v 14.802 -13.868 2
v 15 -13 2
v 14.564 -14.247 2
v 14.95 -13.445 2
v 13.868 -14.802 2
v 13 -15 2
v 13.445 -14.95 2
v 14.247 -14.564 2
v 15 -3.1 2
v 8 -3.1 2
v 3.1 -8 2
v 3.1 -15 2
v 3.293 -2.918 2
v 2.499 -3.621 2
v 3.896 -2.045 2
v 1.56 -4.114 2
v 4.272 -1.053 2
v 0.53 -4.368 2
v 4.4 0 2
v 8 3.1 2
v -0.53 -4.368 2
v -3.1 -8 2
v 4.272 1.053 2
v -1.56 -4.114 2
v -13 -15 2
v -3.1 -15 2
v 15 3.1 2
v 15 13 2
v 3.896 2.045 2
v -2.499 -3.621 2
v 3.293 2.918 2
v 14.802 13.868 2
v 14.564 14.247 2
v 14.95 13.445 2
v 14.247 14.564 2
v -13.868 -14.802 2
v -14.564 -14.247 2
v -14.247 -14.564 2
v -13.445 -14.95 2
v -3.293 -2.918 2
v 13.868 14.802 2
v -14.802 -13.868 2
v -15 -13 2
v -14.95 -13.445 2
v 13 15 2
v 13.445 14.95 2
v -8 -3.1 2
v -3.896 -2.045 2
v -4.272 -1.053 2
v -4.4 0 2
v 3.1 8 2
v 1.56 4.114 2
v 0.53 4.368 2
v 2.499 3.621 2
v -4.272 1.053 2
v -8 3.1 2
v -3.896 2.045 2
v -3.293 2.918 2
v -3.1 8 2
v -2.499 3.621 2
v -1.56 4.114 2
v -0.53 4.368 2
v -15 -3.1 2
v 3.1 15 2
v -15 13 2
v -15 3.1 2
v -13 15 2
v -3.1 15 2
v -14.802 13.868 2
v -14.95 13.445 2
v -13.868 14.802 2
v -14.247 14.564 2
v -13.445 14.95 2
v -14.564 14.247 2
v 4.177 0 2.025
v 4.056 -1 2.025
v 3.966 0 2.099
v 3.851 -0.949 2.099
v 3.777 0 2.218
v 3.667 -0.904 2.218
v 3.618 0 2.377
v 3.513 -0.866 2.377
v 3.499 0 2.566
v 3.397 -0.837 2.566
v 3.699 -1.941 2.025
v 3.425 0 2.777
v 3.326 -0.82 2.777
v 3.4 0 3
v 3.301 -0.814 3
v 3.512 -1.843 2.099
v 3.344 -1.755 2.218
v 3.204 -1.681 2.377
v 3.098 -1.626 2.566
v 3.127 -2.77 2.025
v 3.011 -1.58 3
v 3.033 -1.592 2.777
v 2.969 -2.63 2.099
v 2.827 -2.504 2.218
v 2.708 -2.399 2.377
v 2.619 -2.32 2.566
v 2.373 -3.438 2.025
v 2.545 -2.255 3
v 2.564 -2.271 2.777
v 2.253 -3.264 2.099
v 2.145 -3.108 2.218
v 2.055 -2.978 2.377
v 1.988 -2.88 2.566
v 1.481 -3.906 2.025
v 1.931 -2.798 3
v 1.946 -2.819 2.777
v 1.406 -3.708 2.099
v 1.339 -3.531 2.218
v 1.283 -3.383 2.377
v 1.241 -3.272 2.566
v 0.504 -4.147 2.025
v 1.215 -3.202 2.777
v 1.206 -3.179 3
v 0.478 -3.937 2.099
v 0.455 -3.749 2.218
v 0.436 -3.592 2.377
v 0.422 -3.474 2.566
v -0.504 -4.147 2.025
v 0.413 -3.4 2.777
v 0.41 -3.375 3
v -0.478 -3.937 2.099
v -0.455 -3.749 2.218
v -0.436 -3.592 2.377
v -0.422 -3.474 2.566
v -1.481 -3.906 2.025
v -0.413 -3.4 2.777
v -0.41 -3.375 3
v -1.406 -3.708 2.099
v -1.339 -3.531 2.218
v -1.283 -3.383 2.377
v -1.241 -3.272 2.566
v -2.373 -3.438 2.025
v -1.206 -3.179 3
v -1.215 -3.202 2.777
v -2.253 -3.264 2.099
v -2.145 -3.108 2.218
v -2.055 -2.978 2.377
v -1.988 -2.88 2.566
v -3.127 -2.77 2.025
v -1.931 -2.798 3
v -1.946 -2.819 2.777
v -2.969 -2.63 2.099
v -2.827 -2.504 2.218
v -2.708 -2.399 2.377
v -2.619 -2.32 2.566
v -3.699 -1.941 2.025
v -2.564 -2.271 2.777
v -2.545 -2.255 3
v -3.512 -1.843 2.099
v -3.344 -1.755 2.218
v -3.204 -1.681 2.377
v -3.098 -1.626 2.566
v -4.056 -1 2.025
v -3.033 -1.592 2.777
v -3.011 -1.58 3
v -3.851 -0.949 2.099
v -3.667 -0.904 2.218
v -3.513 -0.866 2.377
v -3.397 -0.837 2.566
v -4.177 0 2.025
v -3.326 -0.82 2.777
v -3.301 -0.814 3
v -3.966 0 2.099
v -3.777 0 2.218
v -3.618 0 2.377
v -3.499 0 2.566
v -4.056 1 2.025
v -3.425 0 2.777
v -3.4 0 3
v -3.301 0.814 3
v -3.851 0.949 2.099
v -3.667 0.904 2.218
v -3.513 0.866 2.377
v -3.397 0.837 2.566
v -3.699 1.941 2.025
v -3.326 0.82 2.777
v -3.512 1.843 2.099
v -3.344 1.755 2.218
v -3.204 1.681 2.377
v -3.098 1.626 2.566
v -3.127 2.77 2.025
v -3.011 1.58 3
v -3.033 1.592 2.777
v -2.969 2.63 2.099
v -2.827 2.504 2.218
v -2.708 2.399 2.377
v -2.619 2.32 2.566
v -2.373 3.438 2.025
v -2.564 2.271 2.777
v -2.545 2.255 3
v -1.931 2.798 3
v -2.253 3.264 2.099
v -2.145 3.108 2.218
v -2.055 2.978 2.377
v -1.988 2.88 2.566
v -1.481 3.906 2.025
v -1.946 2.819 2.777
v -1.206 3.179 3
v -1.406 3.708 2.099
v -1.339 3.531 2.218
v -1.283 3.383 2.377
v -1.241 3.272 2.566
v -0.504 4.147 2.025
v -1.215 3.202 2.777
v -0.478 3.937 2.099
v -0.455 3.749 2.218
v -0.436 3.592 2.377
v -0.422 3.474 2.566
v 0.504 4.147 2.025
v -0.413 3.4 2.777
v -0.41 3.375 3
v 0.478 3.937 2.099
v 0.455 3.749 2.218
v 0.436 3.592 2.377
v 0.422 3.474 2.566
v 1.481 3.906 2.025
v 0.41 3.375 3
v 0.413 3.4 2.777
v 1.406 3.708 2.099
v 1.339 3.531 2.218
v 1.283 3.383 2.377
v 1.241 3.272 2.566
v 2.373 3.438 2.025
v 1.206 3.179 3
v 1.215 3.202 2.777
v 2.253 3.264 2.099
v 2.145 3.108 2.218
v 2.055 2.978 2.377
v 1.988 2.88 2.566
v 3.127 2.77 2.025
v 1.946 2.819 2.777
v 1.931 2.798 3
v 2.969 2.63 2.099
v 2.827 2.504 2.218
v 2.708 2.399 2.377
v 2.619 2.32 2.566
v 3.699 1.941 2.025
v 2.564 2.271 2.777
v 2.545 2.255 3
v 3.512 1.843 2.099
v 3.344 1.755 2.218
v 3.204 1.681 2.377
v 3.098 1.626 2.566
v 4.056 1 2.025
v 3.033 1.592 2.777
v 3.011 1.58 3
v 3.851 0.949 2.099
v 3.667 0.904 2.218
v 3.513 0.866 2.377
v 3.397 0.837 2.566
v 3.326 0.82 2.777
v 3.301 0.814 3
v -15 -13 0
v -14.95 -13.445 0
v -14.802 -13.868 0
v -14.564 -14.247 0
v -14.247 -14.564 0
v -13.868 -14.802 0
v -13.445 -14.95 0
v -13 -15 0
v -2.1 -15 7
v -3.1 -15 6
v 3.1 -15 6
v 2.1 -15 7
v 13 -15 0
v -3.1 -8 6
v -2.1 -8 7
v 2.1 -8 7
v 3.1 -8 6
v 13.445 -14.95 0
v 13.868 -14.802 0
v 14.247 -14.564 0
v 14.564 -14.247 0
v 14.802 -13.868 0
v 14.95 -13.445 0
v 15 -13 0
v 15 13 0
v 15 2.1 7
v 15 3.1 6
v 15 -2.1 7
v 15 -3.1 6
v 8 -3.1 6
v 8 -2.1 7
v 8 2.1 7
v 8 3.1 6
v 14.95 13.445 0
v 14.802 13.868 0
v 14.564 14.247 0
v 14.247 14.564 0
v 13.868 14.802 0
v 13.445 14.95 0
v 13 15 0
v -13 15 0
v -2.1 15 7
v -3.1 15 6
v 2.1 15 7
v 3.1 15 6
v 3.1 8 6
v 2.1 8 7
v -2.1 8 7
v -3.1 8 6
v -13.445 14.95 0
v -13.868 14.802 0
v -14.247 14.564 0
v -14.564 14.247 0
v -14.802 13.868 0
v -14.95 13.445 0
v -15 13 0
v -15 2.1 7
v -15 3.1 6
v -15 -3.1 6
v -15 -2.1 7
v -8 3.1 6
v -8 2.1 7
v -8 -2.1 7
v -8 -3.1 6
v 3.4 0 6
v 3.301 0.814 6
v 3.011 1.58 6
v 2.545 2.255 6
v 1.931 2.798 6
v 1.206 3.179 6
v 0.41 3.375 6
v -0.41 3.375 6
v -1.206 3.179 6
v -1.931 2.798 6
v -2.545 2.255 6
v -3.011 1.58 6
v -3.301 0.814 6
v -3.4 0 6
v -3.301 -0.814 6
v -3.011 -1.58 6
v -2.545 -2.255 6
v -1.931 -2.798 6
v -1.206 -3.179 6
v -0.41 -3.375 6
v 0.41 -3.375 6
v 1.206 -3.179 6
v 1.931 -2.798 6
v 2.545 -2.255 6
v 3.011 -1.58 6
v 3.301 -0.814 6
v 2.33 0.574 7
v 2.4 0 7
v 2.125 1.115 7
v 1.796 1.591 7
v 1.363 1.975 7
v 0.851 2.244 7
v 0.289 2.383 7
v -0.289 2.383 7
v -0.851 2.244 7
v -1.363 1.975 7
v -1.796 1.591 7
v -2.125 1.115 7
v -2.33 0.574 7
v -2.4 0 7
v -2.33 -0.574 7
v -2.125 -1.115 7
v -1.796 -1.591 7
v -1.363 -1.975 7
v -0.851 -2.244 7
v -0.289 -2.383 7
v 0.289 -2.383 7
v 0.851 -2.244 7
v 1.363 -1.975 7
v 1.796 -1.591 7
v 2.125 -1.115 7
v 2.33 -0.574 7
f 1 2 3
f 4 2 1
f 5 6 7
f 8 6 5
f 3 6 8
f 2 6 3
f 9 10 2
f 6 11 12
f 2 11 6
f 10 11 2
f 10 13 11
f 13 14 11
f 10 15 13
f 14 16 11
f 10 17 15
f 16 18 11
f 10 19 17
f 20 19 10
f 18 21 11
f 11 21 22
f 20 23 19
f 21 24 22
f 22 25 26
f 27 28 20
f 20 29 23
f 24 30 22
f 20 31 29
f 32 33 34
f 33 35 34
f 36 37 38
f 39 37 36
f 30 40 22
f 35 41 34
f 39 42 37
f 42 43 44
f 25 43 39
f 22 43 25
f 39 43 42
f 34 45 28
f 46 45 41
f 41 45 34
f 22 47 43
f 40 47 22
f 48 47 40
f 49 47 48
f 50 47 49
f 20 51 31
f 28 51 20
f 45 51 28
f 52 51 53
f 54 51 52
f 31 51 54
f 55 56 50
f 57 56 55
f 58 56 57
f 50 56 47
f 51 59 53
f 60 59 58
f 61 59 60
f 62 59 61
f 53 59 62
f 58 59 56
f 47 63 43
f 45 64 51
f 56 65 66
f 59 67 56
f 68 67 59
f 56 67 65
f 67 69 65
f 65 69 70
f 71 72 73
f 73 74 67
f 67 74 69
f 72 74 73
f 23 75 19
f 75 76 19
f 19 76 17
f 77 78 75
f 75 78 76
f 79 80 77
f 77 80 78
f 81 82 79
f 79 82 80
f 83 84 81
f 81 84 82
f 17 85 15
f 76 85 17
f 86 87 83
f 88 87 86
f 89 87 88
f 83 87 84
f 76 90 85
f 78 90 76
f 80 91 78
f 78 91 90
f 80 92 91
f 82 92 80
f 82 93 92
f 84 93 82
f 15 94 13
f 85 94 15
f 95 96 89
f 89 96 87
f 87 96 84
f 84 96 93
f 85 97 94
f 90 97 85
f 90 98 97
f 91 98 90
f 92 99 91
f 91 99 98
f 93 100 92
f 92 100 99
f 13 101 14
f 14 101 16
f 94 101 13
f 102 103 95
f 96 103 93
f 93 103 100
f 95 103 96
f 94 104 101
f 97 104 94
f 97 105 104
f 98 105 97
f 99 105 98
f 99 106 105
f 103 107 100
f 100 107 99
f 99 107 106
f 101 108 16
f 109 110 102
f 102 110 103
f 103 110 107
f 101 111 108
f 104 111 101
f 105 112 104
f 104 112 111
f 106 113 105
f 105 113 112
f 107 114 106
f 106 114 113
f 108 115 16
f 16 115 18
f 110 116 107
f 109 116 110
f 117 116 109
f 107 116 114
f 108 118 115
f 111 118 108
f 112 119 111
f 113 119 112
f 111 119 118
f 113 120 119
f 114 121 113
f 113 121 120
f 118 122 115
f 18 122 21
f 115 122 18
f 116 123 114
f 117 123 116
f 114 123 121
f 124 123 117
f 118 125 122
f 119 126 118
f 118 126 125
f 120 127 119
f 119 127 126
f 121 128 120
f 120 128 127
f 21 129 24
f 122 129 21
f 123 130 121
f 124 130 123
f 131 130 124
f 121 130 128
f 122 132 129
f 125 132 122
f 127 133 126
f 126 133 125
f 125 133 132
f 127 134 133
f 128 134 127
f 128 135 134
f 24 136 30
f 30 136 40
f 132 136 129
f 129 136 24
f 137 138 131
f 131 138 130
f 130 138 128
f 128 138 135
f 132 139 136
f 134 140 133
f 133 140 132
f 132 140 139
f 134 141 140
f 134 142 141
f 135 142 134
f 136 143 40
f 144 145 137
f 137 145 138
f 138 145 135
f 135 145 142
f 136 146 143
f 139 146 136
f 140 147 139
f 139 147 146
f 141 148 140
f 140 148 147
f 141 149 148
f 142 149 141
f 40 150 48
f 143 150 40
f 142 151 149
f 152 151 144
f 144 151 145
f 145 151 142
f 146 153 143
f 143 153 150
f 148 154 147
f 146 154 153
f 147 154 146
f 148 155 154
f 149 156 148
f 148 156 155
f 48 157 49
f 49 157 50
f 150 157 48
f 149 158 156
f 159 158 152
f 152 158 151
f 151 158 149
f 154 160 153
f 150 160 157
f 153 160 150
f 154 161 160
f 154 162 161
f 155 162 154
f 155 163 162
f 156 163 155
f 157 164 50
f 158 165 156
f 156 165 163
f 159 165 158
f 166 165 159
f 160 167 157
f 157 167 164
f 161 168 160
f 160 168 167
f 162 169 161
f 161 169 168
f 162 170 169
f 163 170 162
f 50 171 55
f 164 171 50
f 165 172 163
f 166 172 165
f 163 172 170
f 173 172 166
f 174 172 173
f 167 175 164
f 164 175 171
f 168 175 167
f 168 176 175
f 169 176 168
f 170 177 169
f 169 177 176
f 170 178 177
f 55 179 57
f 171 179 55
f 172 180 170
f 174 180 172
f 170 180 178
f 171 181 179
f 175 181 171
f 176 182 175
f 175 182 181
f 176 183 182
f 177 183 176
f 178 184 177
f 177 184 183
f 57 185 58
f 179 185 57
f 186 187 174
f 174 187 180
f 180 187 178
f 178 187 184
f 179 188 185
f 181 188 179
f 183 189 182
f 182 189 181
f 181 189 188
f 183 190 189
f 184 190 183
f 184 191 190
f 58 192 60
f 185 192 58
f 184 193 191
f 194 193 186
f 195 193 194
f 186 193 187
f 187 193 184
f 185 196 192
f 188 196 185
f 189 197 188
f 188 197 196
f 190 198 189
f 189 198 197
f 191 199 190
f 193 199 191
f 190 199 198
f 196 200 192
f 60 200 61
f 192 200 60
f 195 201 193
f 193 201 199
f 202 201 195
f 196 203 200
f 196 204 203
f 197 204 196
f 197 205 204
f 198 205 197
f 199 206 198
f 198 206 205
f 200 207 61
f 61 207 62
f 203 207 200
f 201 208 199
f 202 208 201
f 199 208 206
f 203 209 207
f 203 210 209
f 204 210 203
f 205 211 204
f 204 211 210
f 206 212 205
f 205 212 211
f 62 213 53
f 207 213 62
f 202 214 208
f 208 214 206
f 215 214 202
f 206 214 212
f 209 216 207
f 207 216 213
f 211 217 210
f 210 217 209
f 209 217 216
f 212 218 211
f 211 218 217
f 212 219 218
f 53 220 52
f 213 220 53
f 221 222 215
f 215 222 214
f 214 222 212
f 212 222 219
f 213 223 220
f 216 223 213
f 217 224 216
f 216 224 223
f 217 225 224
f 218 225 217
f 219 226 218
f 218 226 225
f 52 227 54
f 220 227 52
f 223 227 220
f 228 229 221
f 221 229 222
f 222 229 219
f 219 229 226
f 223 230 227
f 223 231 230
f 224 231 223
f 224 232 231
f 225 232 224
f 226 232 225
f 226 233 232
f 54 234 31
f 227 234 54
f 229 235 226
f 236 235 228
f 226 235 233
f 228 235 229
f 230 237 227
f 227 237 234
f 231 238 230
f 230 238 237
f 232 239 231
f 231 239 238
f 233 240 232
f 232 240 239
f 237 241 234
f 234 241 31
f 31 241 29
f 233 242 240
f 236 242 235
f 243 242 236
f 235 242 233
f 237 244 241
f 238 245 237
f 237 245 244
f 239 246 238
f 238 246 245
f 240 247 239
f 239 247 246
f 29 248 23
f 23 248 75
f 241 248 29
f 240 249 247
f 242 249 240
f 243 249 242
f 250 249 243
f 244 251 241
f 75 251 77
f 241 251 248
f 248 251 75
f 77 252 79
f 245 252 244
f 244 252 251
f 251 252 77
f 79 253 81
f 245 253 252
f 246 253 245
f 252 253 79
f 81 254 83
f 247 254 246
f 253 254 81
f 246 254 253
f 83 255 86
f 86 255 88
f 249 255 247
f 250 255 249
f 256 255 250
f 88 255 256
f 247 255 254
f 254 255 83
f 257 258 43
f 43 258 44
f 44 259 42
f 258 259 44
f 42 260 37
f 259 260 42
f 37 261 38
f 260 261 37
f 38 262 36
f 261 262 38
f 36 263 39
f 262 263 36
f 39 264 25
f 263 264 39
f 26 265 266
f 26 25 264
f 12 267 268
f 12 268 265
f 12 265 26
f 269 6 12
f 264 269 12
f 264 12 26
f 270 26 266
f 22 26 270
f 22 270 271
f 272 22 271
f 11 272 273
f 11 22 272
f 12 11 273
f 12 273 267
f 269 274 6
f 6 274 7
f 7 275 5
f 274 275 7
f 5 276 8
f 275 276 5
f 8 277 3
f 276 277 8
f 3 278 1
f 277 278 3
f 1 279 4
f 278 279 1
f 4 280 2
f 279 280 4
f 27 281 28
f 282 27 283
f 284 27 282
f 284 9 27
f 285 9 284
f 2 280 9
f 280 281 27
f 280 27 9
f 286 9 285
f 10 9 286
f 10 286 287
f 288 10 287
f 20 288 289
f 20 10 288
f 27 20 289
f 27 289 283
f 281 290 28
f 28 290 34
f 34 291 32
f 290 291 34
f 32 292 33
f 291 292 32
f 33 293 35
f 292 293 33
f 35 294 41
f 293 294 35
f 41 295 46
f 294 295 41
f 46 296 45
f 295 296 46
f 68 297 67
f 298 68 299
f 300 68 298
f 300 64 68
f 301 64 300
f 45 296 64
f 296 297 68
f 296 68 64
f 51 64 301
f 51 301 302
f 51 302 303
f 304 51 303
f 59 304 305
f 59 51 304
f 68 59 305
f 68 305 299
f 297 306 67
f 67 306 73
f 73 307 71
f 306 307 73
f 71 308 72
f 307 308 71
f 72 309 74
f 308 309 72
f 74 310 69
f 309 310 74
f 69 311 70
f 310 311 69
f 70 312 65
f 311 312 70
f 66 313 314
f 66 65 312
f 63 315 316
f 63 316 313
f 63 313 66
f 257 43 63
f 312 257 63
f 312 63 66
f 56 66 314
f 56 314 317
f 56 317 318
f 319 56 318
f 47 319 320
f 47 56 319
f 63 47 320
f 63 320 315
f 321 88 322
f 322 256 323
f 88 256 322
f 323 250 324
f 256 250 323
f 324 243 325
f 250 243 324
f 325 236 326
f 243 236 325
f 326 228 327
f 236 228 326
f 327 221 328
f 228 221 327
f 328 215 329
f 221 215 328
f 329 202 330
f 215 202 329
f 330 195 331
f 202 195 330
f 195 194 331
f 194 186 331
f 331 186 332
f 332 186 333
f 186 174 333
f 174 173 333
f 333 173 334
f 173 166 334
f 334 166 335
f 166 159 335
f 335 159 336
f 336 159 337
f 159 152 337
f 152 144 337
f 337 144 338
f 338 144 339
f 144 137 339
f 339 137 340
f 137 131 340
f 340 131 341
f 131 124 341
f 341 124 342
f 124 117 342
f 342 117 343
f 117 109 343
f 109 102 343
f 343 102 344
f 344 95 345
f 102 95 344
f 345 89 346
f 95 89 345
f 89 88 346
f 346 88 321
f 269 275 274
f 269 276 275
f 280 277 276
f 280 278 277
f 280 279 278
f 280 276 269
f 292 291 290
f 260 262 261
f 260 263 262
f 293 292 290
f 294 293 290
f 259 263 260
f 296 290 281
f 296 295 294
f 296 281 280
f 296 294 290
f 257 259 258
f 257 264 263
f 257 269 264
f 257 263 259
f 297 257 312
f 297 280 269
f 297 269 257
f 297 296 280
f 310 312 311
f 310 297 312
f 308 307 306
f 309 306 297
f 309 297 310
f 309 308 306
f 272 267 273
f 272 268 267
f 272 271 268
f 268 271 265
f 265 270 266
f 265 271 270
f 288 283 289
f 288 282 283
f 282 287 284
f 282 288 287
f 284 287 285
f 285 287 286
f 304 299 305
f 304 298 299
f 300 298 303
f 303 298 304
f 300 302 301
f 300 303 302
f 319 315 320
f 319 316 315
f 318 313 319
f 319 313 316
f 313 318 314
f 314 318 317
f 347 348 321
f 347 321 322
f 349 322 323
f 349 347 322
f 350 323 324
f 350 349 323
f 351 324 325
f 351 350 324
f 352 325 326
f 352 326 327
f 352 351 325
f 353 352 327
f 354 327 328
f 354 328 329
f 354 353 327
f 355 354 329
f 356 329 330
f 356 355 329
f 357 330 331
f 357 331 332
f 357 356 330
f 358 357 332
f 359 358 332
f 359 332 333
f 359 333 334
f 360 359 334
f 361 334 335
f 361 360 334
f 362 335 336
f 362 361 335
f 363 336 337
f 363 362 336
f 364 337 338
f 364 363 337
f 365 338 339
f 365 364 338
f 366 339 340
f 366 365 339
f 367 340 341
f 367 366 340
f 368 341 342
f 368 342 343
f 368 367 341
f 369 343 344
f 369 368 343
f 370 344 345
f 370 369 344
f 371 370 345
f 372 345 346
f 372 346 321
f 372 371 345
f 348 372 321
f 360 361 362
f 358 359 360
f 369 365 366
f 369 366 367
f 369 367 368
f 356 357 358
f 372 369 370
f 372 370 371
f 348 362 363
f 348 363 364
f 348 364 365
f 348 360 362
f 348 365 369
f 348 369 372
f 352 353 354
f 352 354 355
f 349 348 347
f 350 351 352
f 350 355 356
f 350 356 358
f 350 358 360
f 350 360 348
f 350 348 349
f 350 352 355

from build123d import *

# Parameters (mm, degrees)
PAD_DEPTH     = 2
SKETCH001_R   = 3.4
SKETCH001_W   = 7
SKETCH001_H   = 6.2
SKETCH001_W_2 = 6.2
SKETCH001_H_2 = 7
PAD001_DEPTH  = 7
CHAMFER_SIZE  = 1
FILLET_R      = 1


with BuildPart() as part:
    # Sketch → Pad (new body)
    with BuildSketch(Plane.XY):
        with BuildLine():
            Line((-13, 15), (13, 15))
            ThreePointArc((15, 13), (14.414214, 14.414214), (13, 15))
            Line((15, 13), (15, -13))
            ThreePointArc((13, -15), (14.414214, -14.414214), (15, -13))
            Line((13, -15), (-13, -15))
            ThreePointArc((-15, -13), (-14.414214, -14.414214), (-13, -15))
            Line((-15, -13), (-15, 13))
            ThreePointArc((-13, 15), (-14.414214, 14.414214), (-15, 13))
        make_face()
    extrude(amount=PAD_DEPTH)

    # Sketch001 → Pad001 (join)
    with BuildSketch(Plane.XY):
        Circle(SKETCH001_R)
        with Locations((-11.5, 0)):
            Rectangle(SKETCH001_W, SKETCH001_H)
        with Locations((0, -11.5)):
            Rectangle(SKETCH001_W_2, SKETCH001_H_2)
        with Locations((11.5, 0)):
            Rectangle(SKETCH001_W, SKETCH001_H)
        with Locations((0, 11.5)):
            Rectangle(SKETCH001_W_2, SKETCH001_H_2)
    extrude(amount=PAD001_DEPTH)

    # Chamfer
    chamfer_edges = [part.edges().sort_by_distance(p)[0] for p in [
        (-3.4, 0, 7),
        (-11.5, -3.1, 7),
        (-11.5, 3.1, 7),
        (-3.1, 11.5, 7),
        (3.1, 11.5, 7),
        (11.5, 3.1, 7),
        (11.5, -3.1, 7),
        (3.1, -11.5, 7),
        (-3.1, -11.5, 7),
    ]]
    chamfer(chamfer_edges, length=CHAMFER_SIZE)

    # Fillet
    fillet_edges = [part.edges().sort_by_distance(p)[0] for p in [
        (-3.4, 0, 2),
    ]]
    fillet(fillet_edges, radius=FILLET_R)


solid = part.part
